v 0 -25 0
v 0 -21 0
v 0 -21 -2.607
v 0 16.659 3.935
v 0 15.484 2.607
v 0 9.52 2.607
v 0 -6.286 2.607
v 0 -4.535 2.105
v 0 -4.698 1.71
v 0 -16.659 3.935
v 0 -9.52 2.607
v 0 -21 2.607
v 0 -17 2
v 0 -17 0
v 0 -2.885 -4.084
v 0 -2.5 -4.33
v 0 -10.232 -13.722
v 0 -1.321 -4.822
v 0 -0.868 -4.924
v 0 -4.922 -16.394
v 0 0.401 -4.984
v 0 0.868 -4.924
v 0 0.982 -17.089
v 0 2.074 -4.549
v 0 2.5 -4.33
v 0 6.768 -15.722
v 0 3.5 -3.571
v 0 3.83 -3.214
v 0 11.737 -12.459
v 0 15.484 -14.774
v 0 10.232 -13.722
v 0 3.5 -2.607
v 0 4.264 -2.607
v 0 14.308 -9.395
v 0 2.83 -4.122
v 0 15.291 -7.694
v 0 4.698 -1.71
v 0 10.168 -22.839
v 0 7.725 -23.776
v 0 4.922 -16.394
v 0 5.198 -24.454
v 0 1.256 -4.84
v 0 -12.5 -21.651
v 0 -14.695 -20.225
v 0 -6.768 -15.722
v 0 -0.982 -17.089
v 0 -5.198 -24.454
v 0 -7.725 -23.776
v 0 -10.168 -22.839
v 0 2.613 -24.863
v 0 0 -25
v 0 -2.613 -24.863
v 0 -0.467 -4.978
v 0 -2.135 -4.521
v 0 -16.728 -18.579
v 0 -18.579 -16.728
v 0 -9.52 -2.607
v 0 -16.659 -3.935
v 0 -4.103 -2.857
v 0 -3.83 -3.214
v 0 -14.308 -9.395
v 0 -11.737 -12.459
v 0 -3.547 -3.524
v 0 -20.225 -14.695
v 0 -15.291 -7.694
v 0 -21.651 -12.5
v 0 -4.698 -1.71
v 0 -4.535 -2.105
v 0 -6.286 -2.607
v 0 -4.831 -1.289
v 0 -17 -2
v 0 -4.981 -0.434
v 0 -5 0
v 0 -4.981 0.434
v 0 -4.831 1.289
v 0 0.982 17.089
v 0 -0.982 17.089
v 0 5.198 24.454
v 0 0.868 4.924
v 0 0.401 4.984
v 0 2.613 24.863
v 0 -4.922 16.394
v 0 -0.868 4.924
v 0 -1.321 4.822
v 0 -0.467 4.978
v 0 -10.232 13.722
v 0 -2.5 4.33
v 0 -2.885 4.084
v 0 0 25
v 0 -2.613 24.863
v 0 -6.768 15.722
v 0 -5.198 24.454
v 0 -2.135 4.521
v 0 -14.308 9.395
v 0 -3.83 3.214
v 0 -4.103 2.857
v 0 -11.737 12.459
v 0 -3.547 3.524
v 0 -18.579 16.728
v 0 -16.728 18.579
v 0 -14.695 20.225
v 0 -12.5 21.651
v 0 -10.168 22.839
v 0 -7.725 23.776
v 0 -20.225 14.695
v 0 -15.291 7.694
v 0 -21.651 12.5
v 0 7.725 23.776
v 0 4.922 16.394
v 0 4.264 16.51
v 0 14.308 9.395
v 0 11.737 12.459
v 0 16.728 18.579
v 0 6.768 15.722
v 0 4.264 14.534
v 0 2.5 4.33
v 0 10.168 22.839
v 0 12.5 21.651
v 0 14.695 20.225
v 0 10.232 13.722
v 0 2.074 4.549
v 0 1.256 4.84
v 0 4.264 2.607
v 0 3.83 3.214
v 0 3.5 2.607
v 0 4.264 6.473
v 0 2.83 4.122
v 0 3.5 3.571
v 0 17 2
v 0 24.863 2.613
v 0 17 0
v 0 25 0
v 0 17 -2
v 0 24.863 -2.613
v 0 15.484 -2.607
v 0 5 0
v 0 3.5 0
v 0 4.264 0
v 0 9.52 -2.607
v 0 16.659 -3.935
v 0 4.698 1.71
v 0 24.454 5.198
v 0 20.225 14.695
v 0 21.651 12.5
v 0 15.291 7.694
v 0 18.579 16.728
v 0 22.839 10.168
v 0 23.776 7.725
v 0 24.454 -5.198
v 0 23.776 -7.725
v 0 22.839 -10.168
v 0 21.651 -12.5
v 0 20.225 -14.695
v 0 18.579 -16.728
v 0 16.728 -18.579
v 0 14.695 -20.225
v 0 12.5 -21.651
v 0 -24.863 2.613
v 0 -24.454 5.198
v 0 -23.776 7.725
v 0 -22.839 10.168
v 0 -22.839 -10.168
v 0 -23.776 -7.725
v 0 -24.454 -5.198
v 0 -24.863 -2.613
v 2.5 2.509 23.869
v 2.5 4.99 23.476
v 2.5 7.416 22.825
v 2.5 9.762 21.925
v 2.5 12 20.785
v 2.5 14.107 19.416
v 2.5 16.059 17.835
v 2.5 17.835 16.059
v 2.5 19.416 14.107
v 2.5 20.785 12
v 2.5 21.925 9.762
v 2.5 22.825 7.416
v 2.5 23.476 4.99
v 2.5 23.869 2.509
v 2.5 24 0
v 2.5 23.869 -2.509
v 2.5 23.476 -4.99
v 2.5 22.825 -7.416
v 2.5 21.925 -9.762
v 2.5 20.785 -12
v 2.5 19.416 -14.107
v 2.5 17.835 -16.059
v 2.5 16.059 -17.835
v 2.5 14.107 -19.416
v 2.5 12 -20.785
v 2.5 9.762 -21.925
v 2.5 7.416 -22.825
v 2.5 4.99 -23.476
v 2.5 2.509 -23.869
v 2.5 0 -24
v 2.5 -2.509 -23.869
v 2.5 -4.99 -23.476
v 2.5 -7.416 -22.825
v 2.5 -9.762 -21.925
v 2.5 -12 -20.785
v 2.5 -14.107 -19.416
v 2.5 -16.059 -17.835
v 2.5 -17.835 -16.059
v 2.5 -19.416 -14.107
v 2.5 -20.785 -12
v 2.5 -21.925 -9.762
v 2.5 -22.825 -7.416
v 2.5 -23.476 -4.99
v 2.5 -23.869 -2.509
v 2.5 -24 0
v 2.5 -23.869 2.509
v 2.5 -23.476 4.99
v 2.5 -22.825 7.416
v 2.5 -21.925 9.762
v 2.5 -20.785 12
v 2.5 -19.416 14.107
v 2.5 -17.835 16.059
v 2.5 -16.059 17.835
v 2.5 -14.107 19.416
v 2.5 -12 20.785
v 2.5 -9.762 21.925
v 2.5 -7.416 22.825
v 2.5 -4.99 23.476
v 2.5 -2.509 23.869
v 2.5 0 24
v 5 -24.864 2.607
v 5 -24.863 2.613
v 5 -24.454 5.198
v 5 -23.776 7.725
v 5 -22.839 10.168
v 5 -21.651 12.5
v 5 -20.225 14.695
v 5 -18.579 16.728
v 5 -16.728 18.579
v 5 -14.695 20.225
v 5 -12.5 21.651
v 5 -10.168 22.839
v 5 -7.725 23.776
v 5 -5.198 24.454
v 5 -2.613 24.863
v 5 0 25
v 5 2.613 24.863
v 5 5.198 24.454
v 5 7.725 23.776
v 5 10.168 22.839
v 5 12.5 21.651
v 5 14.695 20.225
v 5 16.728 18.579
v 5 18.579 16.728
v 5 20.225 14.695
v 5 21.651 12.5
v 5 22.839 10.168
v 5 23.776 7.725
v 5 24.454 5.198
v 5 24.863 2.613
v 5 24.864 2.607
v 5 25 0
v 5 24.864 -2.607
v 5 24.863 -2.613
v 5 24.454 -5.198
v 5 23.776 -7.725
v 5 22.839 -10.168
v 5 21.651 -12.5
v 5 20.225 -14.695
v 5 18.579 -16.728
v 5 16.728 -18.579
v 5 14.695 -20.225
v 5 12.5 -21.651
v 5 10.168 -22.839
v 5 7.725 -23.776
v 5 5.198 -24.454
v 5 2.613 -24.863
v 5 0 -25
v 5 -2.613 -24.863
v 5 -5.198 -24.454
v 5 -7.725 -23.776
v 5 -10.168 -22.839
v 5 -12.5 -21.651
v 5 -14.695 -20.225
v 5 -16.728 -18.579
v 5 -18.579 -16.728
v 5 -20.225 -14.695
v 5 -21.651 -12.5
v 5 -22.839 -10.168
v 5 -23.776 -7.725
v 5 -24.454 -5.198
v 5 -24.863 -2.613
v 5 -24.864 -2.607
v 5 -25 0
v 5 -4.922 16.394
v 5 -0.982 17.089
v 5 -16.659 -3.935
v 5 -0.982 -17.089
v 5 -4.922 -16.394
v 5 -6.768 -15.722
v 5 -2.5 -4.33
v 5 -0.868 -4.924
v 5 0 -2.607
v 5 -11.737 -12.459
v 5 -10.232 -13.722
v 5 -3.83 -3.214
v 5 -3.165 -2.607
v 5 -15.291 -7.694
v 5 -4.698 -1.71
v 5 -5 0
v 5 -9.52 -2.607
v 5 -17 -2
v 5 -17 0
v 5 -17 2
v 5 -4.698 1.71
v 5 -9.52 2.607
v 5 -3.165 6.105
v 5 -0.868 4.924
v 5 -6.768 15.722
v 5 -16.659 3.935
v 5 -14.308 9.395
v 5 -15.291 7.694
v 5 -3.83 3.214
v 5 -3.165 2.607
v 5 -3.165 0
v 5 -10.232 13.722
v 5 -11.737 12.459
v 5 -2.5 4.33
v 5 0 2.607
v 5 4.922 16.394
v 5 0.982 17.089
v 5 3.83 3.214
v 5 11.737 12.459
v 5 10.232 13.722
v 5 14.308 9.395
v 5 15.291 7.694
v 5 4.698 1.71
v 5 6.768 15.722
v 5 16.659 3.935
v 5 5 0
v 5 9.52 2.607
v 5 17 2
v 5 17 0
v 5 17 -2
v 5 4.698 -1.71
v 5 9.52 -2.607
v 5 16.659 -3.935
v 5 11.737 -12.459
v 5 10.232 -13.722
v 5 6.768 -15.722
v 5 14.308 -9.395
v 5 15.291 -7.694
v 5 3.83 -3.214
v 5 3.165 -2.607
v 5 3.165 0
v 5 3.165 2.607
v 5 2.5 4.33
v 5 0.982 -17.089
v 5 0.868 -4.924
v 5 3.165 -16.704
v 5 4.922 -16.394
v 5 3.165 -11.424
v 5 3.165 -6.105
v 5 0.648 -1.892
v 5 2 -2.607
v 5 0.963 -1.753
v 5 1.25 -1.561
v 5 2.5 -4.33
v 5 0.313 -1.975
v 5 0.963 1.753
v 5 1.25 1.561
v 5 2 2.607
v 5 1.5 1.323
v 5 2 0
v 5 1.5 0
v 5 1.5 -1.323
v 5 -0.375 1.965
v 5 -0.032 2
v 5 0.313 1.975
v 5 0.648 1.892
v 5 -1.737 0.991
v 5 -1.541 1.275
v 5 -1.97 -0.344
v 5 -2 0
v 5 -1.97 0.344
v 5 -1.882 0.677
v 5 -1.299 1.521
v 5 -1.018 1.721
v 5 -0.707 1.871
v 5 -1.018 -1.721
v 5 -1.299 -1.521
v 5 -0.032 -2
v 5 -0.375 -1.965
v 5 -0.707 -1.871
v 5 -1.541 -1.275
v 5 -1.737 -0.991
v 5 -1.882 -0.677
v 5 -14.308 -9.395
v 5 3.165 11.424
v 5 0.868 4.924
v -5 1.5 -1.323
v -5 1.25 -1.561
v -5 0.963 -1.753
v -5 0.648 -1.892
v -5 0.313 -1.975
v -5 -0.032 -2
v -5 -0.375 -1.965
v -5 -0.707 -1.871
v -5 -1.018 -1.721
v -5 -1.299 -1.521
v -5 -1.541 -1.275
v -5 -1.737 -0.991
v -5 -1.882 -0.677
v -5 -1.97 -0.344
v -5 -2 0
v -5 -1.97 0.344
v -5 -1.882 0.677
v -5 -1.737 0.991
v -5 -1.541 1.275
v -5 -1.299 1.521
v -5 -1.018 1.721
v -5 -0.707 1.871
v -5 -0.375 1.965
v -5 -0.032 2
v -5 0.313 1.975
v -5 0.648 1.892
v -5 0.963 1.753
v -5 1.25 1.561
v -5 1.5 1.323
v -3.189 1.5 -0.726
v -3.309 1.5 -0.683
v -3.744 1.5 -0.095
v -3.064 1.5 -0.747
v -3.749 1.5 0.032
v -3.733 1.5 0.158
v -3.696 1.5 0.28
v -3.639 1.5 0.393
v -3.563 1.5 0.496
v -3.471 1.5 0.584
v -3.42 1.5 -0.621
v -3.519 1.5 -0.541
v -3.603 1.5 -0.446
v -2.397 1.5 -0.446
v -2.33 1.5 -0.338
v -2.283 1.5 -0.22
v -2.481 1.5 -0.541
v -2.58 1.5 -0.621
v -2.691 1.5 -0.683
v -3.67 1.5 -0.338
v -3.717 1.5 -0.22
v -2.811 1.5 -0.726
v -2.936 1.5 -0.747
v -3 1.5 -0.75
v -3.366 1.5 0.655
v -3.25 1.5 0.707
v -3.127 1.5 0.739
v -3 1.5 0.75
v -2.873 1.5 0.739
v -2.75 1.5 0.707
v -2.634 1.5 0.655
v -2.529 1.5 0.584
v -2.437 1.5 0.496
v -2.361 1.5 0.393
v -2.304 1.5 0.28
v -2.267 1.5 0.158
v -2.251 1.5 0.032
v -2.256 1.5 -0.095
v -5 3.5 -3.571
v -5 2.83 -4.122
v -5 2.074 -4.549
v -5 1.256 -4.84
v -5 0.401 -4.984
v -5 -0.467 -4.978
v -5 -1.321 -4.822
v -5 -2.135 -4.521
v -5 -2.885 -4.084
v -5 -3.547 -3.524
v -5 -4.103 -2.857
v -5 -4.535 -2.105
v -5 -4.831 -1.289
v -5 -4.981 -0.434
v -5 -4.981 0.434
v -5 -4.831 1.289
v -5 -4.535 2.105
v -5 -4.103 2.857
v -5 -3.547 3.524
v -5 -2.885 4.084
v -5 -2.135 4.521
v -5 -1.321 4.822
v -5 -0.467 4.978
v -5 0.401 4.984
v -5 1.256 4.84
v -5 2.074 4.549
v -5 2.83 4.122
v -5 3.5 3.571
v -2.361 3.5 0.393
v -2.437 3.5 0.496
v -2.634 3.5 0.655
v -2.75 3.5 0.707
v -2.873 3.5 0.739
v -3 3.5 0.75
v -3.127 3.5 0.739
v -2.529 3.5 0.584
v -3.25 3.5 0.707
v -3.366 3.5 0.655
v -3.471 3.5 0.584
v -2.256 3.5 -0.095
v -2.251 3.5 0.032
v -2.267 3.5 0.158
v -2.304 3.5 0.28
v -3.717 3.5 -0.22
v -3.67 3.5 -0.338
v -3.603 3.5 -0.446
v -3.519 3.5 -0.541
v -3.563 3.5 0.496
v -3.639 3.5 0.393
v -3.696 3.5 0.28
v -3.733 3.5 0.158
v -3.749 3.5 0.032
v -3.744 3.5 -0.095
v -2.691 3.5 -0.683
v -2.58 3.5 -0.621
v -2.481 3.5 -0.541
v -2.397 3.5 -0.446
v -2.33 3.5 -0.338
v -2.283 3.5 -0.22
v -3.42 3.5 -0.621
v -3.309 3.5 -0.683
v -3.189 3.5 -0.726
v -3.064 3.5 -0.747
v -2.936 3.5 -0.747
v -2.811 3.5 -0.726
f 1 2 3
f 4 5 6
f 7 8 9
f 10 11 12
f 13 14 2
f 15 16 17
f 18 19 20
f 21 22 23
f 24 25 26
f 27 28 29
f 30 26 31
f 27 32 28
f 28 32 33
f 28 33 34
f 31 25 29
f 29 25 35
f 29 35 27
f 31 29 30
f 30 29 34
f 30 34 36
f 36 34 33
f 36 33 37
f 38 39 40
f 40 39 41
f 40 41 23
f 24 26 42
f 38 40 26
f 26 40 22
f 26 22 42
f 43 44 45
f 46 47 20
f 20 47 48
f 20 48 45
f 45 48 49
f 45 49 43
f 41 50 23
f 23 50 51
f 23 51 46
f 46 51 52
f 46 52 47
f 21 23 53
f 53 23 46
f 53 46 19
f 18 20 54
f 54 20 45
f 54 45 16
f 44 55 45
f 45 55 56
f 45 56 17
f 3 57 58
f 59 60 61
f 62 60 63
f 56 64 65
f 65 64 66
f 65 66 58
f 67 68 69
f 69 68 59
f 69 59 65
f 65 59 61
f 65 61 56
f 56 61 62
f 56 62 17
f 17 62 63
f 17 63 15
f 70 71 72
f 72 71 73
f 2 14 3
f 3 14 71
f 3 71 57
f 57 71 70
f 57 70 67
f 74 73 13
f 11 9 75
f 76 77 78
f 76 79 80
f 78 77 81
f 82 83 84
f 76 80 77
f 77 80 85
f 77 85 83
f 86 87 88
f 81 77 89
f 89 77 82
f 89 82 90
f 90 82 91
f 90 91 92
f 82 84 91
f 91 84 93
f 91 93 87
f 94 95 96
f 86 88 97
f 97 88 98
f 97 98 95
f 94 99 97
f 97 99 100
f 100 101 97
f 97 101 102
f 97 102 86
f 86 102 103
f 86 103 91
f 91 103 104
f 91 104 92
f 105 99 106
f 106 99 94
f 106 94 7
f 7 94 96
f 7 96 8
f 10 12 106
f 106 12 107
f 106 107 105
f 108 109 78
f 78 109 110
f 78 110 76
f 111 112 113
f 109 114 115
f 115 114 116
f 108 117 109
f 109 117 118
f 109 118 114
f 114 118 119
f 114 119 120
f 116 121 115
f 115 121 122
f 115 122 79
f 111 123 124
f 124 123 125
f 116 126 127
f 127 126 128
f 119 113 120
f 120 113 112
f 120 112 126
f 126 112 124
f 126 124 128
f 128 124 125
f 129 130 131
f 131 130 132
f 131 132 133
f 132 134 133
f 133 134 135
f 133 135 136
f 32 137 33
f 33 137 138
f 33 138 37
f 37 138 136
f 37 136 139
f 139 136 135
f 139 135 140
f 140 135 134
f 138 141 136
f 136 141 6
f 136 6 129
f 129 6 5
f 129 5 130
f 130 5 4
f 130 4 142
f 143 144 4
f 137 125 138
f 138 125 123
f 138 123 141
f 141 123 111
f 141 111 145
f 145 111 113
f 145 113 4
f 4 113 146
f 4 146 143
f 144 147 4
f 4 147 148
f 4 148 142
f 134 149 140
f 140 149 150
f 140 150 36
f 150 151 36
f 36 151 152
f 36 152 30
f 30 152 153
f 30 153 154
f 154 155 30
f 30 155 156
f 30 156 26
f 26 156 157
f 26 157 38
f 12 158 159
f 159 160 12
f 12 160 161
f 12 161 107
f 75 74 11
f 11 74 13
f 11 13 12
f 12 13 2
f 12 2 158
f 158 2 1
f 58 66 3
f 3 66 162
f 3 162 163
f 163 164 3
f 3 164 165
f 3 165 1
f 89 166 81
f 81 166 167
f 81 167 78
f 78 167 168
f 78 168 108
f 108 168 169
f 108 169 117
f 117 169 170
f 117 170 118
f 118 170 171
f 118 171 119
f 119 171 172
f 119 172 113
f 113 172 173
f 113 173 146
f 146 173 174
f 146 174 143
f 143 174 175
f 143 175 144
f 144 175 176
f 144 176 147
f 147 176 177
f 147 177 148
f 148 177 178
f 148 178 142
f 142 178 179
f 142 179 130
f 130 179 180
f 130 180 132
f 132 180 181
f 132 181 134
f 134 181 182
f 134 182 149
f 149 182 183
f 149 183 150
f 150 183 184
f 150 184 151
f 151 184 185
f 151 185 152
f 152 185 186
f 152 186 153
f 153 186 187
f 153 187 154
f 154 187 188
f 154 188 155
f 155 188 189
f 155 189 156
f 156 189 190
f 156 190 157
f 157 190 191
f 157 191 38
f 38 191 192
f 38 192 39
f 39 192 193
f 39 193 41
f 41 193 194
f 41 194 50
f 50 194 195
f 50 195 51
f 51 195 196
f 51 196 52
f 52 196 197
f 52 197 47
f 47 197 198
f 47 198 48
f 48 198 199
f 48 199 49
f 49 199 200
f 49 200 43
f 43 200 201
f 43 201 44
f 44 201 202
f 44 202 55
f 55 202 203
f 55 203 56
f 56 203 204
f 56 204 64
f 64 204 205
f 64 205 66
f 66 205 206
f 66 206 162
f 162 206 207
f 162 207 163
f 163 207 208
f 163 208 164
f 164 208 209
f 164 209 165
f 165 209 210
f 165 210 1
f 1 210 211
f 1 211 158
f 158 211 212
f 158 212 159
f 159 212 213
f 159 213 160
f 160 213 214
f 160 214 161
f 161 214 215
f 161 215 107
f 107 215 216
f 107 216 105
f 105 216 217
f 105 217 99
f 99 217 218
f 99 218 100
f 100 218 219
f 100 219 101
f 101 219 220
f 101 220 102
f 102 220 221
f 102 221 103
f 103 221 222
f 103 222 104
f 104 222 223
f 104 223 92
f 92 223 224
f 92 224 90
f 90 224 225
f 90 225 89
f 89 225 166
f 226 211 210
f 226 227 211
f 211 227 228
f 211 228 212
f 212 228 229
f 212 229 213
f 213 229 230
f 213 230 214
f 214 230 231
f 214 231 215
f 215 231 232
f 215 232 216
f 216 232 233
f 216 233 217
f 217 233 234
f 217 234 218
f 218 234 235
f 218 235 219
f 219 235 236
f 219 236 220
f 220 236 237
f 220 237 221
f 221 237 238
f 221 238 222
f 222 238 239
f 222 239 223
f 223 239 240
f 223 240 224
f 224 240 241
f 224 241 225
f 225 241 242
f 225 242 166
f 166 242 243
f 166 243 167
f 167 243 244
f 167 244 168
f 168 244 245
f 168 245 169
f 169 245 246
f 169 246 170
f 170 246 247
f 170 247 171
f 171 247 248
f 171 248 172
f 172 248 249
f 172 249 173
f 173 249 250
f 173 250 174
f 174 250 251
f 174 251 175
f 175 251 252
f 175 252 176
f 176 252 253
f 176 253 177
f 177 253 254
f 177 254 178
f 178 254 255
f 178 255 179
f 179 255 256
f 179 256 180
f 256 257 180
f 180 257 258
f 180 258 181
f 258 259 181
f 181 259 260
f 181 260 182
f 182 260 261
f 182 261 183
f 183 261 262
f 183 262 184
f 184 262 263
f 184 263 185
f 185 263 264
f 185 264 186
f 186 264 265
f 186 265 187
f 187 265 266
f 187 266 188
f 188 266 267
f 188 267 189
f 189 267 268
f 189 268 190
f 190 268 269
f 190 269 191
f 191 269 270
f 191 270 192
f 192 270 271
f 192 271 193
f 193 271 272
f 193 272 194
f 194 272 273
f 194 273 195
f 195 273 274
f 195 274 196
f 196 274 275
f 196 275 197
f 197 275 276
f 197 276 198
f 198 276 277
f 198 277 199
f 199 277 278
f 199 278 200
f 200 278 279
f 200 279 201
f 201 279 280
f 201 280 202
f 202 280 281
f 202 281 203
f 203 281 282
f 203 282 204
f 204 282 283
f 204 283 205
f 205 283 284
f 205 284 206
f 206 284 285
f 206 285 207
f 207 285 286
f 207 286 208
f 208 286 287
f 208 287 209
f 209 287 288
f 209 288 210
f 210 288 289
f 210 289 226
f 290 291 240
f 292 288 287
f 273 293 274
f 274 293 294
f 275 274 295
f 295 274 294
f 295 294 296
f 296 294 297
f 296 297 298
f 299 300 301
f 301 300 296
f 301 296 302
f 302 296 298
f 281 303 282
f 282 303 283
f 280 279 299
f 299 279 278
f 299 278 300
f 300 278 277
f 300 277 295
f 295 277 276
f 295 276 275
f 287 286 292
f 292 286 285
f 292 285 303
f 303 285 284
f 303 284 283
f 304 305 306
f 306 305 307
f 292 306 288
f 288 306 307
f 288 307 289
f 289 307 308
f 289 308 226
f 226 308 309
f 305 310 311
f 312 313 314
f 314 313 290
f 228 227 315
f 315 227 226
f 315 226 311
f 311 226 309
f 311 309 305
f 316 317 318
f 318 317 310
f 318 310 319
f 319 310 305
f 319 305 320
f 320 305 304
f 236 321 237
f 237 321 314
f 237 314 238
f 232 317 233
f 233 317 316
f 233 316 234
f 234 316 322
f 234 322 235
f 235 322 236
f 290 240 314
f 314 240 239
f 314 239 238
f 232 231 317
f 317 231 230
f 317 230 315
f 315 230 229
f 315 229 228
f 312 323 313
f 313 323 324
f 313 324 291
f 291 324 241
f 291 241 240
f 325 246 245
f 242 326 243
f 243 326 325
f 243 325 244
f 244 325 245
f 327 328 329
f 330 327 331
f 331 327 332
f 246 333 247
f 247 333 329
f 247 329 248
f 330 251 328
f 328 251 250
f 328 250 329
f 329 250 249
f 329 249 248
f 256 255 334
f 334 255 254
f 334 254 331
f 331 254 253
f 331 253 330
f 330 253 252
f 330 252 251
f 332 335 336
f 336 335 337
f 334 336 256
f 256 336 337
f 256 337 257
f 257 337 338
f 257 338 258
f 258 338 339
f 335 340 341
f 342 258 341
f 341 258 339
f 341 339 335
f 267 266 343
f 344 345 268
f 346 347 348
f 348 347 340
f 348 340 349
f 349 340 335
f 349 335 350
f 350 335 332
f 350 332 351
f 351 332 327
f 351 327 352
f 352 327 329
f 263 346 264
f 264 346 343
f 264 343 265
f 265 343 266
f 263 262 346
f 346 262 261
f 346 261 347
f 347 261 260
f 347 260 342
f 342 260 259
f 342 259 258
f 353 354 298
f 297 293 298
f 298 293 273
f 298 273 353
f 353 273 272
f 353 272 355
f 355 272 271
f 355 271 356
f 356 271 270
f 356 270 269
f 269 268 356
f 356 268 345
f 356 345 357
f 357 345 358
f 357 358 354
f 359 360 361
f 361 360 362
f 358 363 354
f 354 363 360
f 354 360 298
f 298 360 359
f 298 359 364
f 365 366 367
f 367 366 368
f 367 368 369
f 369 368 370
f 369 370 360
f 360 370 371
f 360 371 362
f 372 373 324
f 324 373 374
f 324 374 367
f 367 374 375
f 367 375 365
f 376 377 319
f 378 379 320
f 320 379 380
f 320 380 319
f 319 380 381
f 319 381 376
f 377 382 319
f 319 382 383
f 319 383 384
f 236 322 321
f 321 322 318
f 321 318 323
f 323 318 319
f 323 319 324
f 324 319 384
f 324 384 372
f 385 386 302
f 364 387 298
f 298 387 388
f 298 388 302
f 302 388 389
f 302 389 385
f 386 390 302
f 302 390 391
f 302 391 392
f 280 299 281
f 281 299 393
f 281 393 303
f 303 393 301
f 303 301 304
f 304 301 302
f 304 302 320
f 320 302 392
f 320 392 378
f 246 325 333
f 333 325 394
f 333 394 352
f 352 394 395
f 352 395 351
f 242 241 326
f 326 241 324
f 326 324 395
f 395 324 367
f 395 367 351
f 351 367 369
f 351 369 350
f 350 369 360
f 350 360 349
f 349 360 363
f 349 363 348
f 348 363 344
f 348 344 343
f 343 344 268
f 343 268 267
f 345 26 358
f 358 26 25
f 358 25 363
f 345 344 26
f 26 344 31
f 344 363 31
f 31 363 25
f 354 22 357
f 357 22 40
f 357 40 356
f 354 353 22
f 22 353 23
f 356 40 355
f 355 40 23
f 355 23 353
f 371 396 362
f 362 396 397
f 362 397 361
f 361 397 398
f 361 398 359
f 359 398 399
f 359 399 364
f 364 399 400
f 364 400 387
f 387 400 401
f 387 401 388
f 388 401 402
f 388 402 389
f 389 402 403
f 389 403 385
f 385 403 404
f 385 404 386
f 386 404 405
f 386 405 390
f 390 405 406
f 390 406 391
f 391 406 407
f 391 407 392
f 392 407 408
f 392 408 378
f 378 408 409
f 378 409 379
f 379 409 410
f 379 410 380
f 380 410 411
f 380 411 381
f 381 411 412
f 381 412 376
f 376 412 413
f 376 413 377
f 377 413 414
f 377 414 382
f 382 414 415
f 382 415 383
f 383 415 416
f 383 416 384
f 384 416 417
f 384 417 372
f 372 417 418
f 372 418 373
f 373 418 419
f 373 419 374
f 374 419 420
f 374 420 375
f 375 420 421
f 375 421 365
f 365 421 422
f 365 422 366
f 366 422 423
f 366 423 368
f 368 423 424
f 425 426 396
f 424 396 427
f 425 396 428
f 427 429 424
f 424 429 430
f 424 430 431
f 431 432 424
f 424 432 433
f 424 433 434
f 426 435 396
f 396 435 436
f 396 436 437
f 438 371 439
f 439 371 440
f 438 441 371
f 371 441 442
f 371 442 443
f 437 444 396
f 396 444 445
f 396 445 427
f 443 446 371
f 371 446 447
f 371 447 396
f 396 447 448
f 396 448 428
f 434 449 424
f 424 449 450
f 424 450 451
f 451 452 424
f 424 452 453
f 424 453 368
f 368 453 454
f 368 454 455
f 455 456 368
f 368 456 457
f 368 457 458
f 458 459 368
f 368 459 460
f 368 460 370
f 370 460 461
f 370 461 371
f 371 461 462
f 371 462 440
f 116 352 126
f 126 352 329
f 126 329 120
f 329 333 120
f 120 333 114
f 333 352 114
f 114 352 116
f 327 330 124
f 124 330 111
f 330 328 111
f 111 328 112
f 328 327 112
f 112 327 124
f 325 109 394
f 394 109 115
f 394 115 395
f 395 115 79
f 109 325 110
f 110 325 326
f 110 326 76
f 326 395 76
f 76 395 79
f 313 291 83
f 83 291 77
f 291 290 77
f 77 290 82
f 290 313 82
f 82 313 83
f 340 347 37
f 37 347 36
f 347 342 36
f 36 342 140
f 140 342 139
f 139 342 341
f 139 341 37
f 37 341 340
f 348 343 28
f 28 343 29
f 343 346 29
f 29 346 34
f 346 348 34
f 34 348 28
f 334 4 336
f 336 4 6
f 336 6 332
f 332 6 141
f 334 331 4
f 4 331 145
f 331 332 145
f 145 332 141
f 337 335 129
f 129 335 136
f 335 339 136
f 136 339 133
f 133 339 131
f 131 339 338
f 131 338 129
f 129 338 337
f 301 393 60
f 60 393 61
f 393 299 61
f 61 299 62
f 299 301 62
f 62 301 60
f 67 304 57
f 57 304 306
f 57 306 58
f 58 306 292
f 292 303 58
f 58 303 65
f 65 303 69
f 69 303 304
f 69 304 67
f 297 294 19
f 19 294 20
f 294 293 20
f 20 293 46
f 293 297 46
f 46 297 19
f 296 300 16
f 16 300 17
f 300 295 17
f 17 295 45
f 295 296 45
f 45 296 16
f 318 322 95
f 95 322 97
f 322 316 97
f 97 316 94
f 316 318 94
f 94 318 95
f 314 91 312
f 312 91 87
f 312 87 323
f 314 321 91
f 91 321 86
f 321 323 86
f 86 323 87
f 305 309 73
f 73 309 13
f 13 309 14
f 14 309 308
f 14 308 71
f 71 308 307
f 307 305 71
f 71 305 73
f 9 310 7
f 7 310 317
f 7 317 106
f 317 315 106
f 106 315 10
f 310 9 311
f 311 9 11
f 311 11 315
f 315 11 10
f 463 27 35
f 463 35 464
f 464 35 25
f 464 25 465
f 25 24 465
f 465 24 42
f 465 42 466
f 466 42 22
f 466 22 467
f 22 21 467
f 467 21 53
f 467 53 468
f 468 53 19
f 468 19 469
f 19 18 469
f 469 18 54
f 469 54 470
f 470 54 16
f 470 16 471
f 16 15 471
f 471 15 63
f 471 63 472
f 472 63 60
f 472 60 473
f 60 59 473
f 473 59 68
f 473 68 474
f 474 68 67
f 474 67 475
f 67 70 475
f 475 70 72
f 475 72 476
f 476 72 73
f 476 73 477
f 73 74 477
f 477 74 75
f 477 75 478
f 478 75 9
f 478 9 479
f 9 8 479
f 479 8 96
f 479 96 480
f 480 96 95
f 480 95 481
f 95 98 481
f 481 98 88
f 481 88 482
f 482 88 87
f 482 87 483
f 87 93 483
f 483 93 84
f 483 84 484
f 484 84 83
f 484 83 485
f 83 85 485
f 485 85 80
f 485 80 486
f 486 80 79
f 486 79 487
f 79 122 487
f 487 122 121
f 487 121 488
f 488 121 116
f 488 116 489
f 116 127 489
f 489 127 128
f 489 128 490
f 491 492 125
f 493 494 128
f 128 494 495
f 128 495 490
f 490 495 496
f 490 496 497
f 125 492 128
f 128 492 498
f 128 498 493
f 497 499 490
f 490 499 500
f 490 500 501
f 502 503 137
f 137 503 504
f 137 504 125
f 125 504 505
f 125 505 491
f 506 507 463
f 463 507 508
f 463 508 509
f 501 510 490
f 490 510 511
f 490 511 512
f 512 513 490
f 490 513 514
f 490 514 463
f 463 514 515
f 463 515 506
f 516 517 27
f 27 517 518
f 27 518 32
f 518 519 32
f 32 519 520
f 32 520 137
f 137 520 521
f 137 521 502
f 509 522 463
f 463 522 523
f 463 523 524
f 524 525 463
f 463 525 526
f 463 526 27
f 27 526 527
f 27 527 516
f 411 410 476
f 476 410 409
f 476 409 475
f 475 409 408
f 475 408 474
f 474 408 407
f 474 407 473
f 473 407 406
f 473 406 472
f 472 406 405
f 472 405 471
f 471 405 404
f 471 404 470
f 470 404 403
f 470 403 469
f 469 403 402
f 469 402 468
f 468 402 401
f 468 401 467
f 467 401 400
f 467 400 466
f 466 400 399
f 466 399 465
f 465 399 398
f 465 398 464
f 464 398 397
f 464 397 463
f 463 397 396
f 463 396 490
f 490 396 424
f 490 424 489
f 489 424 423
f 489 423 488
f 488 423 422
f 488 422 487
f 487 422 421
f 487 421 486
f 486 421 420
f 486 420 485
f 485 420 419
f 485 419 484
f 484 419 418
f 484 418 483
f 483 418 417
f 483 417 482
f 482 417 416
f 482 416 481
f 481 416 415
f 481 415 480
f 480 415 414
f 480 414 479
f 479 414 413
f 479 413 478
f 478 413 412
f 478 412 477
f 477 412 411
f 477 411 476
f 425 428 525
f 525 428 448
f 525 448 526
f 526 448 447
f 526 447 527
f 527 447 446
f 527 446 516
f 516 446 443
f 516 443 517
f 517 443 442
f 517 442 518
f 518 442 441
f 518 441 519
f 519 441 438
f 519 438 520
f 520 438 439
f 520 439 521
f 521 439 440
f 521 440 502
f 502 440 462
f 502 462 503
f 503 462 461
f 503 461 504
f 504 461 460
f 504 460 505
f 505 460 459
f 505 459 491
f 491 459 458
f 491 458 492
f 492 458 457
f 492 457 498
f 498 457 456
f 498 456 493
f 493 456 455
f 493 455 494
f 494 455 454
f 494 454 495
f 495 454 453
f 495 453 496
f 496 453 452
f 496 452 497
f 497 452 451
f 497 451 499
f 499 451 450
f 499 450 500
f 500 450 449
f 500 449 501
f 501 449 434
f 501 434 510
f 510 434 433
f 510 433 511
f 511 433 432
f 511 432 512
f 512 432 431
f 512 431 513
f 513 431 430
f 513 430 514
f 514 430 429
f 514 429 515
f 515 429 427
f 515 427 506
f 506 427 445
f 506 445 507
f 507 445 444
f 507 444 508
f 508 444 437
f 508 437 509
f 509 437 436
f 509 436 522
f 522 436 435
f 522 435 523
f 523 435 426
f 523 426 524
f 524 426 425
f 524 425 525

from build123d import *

# Parameters (mm, degrees)
CUT_EXTRUDE1_DEPTH  = 36.707142143
BOSS_EXTRUDE1_START = 5
BOSS_EXTRUDE1_DEPTH = 5
SKETCH7_R           = 0.75
CUT_EXTRUDE2_DEPTH  = 3


with BuildPart() as part:
    # Sketch4 → Revolve1 (revolve)
    with BuildSketch(Plane(origin=(0, 0, 0), x_dir=(1, 0, 0), z_dir=(0, 1, 0))):
        Polygon((0, 0), (0, 25), (2.5, 24), (5, 25), (5, 0), align=None)
    revolve(axis=Axis((5, 0, 0), (-1, 0, 0)))

    # Sketch5 → Cut-Extrude1 (cut, through all)
    with BuildSketch(Plane.ZY):
        Polygon((-15.722431864, 6.767949192), (-4.330127019, 2.5), (-13.722431864, 10.232050808), align=None)
        Polygon((-12.459478251, 11.737180314), (-3.213938048, 3.830222216), (-9.395300478, 14.308330752), align=None)
        Polygon((-7.693727678, 15.290734267), (-1.710100717, 4.698463104), (-3.934957195, 16.65881484), align=None)
        Polygon((0, 5), (2, 17), (-2, 17), align=None)
        Polygon((3.934957195, 16.65881484), (1.710100717, 4.698463104), (7.693727678, 15.290734267), align=None)
        Polygon((9.395300478, 14.308330752), (3.213938048, 3.830222216), (12.459478251, 11.737180314), align=None)
        Polygon((13.722431864, 10.232050808), (4.330127019, 2.5), (15.722431864, 6.767949192), align=None)
        Polygon((16.394435446, 4.921634526), (4.924038765, 0.868240888), (17.089028157, 0.982403514), align=None)
        Polygon((17.089028157, -0.982403514), (4.924038765, -0.868240888), (16.394435446, -4.921634526), align=None)
        Polygon((15.722431864, -6.767949192), (4.330127019, -2.5), (13.722431864, -10.232050808), align=None)
        Polygon((12.459478251, -11.737180314), (3.213938048, -3.830222216), (9.395300478, -14.308330752), align=None)
        Polygon((7.693727678, -15.290734267), (1.710100717, -4.698463104), (3.934957195, -16.65881484), align=None)
        Polygon((2, -17), (0, -5), (-2, -17), align=None)
        Polygon((-3.934957195, -16.65881484), (-1.710100717, -4.698463104), (-7.693727678, -15.290734267), align=None)
        Polygon((-9.395300478, -14.308330752), (-3.213938048, -3.830222216), (-12.459478251, -11.737180314), align=None)
        Polygon((-13.722431864, -10.232050808), (-4.330127019, -2.5), (-15.722431864, -6.767949192), align=None)
        Polygon((-16.394435446, -4.921634526), (-4.924038765, -0.868240888), (-17.089028157, -0.982403514), align=None)
        with BuildLine():
            ThreePointArc((-1.322875656, 1.5), (0, -2), (1.322875656, 1.5))
            Line((1.322875656, 1.5), (-1.322875656, 1.5))
        make_face()
        Polygon((-16.394435446, 4.921634526), (-17.089028157, 0.982403514), (-4.924038765, 0.868240888), align=None)
    extrude(amount=-CUT_EXTRUDE1_DEPTH, mode=Mode.SUBTRACT)

    # Sketch6 → Boss-Extrude1 (add)
    with BuildSketch(Plane.ZY.offset(BOSS_EXTRUDE1_START)):
        with BuildLine():
            Line((-3.570714214, 3.5), (3.570714214, 3.5))
            ThreePointArc((3.570714214, 3.5), (0, -5), (-3.570714214, 3.5))
        make_face()
        with BuildLine():
            Line((-1.322875656, 1.5), (1.322875656, 1.5))
            ThreePointArc((1.322875656, 1.5), (0, -2), (-1.322875656, 1.5))
        make_face(mode=Mode.SUBTRACT)
    extrude(amount=-BOSS_EXTRUDE1_DEPTH)

    # Sketch7 → Cut-Extrude2 (cut)
    with BuildSketch(Plane(origin=(0, 3.5, 0), x_dir=(1, 0, 0), z_dir=(0, 1, 0))):
        with Locations(Location((-3, 0, 0), (0, 0, 270))):
            Circle(SKETCH7_R)
    extrude(amount=-CUT_EXTRUDE2_DEPTH, mode=Mode.SUBTRACT)


solid = part.part
